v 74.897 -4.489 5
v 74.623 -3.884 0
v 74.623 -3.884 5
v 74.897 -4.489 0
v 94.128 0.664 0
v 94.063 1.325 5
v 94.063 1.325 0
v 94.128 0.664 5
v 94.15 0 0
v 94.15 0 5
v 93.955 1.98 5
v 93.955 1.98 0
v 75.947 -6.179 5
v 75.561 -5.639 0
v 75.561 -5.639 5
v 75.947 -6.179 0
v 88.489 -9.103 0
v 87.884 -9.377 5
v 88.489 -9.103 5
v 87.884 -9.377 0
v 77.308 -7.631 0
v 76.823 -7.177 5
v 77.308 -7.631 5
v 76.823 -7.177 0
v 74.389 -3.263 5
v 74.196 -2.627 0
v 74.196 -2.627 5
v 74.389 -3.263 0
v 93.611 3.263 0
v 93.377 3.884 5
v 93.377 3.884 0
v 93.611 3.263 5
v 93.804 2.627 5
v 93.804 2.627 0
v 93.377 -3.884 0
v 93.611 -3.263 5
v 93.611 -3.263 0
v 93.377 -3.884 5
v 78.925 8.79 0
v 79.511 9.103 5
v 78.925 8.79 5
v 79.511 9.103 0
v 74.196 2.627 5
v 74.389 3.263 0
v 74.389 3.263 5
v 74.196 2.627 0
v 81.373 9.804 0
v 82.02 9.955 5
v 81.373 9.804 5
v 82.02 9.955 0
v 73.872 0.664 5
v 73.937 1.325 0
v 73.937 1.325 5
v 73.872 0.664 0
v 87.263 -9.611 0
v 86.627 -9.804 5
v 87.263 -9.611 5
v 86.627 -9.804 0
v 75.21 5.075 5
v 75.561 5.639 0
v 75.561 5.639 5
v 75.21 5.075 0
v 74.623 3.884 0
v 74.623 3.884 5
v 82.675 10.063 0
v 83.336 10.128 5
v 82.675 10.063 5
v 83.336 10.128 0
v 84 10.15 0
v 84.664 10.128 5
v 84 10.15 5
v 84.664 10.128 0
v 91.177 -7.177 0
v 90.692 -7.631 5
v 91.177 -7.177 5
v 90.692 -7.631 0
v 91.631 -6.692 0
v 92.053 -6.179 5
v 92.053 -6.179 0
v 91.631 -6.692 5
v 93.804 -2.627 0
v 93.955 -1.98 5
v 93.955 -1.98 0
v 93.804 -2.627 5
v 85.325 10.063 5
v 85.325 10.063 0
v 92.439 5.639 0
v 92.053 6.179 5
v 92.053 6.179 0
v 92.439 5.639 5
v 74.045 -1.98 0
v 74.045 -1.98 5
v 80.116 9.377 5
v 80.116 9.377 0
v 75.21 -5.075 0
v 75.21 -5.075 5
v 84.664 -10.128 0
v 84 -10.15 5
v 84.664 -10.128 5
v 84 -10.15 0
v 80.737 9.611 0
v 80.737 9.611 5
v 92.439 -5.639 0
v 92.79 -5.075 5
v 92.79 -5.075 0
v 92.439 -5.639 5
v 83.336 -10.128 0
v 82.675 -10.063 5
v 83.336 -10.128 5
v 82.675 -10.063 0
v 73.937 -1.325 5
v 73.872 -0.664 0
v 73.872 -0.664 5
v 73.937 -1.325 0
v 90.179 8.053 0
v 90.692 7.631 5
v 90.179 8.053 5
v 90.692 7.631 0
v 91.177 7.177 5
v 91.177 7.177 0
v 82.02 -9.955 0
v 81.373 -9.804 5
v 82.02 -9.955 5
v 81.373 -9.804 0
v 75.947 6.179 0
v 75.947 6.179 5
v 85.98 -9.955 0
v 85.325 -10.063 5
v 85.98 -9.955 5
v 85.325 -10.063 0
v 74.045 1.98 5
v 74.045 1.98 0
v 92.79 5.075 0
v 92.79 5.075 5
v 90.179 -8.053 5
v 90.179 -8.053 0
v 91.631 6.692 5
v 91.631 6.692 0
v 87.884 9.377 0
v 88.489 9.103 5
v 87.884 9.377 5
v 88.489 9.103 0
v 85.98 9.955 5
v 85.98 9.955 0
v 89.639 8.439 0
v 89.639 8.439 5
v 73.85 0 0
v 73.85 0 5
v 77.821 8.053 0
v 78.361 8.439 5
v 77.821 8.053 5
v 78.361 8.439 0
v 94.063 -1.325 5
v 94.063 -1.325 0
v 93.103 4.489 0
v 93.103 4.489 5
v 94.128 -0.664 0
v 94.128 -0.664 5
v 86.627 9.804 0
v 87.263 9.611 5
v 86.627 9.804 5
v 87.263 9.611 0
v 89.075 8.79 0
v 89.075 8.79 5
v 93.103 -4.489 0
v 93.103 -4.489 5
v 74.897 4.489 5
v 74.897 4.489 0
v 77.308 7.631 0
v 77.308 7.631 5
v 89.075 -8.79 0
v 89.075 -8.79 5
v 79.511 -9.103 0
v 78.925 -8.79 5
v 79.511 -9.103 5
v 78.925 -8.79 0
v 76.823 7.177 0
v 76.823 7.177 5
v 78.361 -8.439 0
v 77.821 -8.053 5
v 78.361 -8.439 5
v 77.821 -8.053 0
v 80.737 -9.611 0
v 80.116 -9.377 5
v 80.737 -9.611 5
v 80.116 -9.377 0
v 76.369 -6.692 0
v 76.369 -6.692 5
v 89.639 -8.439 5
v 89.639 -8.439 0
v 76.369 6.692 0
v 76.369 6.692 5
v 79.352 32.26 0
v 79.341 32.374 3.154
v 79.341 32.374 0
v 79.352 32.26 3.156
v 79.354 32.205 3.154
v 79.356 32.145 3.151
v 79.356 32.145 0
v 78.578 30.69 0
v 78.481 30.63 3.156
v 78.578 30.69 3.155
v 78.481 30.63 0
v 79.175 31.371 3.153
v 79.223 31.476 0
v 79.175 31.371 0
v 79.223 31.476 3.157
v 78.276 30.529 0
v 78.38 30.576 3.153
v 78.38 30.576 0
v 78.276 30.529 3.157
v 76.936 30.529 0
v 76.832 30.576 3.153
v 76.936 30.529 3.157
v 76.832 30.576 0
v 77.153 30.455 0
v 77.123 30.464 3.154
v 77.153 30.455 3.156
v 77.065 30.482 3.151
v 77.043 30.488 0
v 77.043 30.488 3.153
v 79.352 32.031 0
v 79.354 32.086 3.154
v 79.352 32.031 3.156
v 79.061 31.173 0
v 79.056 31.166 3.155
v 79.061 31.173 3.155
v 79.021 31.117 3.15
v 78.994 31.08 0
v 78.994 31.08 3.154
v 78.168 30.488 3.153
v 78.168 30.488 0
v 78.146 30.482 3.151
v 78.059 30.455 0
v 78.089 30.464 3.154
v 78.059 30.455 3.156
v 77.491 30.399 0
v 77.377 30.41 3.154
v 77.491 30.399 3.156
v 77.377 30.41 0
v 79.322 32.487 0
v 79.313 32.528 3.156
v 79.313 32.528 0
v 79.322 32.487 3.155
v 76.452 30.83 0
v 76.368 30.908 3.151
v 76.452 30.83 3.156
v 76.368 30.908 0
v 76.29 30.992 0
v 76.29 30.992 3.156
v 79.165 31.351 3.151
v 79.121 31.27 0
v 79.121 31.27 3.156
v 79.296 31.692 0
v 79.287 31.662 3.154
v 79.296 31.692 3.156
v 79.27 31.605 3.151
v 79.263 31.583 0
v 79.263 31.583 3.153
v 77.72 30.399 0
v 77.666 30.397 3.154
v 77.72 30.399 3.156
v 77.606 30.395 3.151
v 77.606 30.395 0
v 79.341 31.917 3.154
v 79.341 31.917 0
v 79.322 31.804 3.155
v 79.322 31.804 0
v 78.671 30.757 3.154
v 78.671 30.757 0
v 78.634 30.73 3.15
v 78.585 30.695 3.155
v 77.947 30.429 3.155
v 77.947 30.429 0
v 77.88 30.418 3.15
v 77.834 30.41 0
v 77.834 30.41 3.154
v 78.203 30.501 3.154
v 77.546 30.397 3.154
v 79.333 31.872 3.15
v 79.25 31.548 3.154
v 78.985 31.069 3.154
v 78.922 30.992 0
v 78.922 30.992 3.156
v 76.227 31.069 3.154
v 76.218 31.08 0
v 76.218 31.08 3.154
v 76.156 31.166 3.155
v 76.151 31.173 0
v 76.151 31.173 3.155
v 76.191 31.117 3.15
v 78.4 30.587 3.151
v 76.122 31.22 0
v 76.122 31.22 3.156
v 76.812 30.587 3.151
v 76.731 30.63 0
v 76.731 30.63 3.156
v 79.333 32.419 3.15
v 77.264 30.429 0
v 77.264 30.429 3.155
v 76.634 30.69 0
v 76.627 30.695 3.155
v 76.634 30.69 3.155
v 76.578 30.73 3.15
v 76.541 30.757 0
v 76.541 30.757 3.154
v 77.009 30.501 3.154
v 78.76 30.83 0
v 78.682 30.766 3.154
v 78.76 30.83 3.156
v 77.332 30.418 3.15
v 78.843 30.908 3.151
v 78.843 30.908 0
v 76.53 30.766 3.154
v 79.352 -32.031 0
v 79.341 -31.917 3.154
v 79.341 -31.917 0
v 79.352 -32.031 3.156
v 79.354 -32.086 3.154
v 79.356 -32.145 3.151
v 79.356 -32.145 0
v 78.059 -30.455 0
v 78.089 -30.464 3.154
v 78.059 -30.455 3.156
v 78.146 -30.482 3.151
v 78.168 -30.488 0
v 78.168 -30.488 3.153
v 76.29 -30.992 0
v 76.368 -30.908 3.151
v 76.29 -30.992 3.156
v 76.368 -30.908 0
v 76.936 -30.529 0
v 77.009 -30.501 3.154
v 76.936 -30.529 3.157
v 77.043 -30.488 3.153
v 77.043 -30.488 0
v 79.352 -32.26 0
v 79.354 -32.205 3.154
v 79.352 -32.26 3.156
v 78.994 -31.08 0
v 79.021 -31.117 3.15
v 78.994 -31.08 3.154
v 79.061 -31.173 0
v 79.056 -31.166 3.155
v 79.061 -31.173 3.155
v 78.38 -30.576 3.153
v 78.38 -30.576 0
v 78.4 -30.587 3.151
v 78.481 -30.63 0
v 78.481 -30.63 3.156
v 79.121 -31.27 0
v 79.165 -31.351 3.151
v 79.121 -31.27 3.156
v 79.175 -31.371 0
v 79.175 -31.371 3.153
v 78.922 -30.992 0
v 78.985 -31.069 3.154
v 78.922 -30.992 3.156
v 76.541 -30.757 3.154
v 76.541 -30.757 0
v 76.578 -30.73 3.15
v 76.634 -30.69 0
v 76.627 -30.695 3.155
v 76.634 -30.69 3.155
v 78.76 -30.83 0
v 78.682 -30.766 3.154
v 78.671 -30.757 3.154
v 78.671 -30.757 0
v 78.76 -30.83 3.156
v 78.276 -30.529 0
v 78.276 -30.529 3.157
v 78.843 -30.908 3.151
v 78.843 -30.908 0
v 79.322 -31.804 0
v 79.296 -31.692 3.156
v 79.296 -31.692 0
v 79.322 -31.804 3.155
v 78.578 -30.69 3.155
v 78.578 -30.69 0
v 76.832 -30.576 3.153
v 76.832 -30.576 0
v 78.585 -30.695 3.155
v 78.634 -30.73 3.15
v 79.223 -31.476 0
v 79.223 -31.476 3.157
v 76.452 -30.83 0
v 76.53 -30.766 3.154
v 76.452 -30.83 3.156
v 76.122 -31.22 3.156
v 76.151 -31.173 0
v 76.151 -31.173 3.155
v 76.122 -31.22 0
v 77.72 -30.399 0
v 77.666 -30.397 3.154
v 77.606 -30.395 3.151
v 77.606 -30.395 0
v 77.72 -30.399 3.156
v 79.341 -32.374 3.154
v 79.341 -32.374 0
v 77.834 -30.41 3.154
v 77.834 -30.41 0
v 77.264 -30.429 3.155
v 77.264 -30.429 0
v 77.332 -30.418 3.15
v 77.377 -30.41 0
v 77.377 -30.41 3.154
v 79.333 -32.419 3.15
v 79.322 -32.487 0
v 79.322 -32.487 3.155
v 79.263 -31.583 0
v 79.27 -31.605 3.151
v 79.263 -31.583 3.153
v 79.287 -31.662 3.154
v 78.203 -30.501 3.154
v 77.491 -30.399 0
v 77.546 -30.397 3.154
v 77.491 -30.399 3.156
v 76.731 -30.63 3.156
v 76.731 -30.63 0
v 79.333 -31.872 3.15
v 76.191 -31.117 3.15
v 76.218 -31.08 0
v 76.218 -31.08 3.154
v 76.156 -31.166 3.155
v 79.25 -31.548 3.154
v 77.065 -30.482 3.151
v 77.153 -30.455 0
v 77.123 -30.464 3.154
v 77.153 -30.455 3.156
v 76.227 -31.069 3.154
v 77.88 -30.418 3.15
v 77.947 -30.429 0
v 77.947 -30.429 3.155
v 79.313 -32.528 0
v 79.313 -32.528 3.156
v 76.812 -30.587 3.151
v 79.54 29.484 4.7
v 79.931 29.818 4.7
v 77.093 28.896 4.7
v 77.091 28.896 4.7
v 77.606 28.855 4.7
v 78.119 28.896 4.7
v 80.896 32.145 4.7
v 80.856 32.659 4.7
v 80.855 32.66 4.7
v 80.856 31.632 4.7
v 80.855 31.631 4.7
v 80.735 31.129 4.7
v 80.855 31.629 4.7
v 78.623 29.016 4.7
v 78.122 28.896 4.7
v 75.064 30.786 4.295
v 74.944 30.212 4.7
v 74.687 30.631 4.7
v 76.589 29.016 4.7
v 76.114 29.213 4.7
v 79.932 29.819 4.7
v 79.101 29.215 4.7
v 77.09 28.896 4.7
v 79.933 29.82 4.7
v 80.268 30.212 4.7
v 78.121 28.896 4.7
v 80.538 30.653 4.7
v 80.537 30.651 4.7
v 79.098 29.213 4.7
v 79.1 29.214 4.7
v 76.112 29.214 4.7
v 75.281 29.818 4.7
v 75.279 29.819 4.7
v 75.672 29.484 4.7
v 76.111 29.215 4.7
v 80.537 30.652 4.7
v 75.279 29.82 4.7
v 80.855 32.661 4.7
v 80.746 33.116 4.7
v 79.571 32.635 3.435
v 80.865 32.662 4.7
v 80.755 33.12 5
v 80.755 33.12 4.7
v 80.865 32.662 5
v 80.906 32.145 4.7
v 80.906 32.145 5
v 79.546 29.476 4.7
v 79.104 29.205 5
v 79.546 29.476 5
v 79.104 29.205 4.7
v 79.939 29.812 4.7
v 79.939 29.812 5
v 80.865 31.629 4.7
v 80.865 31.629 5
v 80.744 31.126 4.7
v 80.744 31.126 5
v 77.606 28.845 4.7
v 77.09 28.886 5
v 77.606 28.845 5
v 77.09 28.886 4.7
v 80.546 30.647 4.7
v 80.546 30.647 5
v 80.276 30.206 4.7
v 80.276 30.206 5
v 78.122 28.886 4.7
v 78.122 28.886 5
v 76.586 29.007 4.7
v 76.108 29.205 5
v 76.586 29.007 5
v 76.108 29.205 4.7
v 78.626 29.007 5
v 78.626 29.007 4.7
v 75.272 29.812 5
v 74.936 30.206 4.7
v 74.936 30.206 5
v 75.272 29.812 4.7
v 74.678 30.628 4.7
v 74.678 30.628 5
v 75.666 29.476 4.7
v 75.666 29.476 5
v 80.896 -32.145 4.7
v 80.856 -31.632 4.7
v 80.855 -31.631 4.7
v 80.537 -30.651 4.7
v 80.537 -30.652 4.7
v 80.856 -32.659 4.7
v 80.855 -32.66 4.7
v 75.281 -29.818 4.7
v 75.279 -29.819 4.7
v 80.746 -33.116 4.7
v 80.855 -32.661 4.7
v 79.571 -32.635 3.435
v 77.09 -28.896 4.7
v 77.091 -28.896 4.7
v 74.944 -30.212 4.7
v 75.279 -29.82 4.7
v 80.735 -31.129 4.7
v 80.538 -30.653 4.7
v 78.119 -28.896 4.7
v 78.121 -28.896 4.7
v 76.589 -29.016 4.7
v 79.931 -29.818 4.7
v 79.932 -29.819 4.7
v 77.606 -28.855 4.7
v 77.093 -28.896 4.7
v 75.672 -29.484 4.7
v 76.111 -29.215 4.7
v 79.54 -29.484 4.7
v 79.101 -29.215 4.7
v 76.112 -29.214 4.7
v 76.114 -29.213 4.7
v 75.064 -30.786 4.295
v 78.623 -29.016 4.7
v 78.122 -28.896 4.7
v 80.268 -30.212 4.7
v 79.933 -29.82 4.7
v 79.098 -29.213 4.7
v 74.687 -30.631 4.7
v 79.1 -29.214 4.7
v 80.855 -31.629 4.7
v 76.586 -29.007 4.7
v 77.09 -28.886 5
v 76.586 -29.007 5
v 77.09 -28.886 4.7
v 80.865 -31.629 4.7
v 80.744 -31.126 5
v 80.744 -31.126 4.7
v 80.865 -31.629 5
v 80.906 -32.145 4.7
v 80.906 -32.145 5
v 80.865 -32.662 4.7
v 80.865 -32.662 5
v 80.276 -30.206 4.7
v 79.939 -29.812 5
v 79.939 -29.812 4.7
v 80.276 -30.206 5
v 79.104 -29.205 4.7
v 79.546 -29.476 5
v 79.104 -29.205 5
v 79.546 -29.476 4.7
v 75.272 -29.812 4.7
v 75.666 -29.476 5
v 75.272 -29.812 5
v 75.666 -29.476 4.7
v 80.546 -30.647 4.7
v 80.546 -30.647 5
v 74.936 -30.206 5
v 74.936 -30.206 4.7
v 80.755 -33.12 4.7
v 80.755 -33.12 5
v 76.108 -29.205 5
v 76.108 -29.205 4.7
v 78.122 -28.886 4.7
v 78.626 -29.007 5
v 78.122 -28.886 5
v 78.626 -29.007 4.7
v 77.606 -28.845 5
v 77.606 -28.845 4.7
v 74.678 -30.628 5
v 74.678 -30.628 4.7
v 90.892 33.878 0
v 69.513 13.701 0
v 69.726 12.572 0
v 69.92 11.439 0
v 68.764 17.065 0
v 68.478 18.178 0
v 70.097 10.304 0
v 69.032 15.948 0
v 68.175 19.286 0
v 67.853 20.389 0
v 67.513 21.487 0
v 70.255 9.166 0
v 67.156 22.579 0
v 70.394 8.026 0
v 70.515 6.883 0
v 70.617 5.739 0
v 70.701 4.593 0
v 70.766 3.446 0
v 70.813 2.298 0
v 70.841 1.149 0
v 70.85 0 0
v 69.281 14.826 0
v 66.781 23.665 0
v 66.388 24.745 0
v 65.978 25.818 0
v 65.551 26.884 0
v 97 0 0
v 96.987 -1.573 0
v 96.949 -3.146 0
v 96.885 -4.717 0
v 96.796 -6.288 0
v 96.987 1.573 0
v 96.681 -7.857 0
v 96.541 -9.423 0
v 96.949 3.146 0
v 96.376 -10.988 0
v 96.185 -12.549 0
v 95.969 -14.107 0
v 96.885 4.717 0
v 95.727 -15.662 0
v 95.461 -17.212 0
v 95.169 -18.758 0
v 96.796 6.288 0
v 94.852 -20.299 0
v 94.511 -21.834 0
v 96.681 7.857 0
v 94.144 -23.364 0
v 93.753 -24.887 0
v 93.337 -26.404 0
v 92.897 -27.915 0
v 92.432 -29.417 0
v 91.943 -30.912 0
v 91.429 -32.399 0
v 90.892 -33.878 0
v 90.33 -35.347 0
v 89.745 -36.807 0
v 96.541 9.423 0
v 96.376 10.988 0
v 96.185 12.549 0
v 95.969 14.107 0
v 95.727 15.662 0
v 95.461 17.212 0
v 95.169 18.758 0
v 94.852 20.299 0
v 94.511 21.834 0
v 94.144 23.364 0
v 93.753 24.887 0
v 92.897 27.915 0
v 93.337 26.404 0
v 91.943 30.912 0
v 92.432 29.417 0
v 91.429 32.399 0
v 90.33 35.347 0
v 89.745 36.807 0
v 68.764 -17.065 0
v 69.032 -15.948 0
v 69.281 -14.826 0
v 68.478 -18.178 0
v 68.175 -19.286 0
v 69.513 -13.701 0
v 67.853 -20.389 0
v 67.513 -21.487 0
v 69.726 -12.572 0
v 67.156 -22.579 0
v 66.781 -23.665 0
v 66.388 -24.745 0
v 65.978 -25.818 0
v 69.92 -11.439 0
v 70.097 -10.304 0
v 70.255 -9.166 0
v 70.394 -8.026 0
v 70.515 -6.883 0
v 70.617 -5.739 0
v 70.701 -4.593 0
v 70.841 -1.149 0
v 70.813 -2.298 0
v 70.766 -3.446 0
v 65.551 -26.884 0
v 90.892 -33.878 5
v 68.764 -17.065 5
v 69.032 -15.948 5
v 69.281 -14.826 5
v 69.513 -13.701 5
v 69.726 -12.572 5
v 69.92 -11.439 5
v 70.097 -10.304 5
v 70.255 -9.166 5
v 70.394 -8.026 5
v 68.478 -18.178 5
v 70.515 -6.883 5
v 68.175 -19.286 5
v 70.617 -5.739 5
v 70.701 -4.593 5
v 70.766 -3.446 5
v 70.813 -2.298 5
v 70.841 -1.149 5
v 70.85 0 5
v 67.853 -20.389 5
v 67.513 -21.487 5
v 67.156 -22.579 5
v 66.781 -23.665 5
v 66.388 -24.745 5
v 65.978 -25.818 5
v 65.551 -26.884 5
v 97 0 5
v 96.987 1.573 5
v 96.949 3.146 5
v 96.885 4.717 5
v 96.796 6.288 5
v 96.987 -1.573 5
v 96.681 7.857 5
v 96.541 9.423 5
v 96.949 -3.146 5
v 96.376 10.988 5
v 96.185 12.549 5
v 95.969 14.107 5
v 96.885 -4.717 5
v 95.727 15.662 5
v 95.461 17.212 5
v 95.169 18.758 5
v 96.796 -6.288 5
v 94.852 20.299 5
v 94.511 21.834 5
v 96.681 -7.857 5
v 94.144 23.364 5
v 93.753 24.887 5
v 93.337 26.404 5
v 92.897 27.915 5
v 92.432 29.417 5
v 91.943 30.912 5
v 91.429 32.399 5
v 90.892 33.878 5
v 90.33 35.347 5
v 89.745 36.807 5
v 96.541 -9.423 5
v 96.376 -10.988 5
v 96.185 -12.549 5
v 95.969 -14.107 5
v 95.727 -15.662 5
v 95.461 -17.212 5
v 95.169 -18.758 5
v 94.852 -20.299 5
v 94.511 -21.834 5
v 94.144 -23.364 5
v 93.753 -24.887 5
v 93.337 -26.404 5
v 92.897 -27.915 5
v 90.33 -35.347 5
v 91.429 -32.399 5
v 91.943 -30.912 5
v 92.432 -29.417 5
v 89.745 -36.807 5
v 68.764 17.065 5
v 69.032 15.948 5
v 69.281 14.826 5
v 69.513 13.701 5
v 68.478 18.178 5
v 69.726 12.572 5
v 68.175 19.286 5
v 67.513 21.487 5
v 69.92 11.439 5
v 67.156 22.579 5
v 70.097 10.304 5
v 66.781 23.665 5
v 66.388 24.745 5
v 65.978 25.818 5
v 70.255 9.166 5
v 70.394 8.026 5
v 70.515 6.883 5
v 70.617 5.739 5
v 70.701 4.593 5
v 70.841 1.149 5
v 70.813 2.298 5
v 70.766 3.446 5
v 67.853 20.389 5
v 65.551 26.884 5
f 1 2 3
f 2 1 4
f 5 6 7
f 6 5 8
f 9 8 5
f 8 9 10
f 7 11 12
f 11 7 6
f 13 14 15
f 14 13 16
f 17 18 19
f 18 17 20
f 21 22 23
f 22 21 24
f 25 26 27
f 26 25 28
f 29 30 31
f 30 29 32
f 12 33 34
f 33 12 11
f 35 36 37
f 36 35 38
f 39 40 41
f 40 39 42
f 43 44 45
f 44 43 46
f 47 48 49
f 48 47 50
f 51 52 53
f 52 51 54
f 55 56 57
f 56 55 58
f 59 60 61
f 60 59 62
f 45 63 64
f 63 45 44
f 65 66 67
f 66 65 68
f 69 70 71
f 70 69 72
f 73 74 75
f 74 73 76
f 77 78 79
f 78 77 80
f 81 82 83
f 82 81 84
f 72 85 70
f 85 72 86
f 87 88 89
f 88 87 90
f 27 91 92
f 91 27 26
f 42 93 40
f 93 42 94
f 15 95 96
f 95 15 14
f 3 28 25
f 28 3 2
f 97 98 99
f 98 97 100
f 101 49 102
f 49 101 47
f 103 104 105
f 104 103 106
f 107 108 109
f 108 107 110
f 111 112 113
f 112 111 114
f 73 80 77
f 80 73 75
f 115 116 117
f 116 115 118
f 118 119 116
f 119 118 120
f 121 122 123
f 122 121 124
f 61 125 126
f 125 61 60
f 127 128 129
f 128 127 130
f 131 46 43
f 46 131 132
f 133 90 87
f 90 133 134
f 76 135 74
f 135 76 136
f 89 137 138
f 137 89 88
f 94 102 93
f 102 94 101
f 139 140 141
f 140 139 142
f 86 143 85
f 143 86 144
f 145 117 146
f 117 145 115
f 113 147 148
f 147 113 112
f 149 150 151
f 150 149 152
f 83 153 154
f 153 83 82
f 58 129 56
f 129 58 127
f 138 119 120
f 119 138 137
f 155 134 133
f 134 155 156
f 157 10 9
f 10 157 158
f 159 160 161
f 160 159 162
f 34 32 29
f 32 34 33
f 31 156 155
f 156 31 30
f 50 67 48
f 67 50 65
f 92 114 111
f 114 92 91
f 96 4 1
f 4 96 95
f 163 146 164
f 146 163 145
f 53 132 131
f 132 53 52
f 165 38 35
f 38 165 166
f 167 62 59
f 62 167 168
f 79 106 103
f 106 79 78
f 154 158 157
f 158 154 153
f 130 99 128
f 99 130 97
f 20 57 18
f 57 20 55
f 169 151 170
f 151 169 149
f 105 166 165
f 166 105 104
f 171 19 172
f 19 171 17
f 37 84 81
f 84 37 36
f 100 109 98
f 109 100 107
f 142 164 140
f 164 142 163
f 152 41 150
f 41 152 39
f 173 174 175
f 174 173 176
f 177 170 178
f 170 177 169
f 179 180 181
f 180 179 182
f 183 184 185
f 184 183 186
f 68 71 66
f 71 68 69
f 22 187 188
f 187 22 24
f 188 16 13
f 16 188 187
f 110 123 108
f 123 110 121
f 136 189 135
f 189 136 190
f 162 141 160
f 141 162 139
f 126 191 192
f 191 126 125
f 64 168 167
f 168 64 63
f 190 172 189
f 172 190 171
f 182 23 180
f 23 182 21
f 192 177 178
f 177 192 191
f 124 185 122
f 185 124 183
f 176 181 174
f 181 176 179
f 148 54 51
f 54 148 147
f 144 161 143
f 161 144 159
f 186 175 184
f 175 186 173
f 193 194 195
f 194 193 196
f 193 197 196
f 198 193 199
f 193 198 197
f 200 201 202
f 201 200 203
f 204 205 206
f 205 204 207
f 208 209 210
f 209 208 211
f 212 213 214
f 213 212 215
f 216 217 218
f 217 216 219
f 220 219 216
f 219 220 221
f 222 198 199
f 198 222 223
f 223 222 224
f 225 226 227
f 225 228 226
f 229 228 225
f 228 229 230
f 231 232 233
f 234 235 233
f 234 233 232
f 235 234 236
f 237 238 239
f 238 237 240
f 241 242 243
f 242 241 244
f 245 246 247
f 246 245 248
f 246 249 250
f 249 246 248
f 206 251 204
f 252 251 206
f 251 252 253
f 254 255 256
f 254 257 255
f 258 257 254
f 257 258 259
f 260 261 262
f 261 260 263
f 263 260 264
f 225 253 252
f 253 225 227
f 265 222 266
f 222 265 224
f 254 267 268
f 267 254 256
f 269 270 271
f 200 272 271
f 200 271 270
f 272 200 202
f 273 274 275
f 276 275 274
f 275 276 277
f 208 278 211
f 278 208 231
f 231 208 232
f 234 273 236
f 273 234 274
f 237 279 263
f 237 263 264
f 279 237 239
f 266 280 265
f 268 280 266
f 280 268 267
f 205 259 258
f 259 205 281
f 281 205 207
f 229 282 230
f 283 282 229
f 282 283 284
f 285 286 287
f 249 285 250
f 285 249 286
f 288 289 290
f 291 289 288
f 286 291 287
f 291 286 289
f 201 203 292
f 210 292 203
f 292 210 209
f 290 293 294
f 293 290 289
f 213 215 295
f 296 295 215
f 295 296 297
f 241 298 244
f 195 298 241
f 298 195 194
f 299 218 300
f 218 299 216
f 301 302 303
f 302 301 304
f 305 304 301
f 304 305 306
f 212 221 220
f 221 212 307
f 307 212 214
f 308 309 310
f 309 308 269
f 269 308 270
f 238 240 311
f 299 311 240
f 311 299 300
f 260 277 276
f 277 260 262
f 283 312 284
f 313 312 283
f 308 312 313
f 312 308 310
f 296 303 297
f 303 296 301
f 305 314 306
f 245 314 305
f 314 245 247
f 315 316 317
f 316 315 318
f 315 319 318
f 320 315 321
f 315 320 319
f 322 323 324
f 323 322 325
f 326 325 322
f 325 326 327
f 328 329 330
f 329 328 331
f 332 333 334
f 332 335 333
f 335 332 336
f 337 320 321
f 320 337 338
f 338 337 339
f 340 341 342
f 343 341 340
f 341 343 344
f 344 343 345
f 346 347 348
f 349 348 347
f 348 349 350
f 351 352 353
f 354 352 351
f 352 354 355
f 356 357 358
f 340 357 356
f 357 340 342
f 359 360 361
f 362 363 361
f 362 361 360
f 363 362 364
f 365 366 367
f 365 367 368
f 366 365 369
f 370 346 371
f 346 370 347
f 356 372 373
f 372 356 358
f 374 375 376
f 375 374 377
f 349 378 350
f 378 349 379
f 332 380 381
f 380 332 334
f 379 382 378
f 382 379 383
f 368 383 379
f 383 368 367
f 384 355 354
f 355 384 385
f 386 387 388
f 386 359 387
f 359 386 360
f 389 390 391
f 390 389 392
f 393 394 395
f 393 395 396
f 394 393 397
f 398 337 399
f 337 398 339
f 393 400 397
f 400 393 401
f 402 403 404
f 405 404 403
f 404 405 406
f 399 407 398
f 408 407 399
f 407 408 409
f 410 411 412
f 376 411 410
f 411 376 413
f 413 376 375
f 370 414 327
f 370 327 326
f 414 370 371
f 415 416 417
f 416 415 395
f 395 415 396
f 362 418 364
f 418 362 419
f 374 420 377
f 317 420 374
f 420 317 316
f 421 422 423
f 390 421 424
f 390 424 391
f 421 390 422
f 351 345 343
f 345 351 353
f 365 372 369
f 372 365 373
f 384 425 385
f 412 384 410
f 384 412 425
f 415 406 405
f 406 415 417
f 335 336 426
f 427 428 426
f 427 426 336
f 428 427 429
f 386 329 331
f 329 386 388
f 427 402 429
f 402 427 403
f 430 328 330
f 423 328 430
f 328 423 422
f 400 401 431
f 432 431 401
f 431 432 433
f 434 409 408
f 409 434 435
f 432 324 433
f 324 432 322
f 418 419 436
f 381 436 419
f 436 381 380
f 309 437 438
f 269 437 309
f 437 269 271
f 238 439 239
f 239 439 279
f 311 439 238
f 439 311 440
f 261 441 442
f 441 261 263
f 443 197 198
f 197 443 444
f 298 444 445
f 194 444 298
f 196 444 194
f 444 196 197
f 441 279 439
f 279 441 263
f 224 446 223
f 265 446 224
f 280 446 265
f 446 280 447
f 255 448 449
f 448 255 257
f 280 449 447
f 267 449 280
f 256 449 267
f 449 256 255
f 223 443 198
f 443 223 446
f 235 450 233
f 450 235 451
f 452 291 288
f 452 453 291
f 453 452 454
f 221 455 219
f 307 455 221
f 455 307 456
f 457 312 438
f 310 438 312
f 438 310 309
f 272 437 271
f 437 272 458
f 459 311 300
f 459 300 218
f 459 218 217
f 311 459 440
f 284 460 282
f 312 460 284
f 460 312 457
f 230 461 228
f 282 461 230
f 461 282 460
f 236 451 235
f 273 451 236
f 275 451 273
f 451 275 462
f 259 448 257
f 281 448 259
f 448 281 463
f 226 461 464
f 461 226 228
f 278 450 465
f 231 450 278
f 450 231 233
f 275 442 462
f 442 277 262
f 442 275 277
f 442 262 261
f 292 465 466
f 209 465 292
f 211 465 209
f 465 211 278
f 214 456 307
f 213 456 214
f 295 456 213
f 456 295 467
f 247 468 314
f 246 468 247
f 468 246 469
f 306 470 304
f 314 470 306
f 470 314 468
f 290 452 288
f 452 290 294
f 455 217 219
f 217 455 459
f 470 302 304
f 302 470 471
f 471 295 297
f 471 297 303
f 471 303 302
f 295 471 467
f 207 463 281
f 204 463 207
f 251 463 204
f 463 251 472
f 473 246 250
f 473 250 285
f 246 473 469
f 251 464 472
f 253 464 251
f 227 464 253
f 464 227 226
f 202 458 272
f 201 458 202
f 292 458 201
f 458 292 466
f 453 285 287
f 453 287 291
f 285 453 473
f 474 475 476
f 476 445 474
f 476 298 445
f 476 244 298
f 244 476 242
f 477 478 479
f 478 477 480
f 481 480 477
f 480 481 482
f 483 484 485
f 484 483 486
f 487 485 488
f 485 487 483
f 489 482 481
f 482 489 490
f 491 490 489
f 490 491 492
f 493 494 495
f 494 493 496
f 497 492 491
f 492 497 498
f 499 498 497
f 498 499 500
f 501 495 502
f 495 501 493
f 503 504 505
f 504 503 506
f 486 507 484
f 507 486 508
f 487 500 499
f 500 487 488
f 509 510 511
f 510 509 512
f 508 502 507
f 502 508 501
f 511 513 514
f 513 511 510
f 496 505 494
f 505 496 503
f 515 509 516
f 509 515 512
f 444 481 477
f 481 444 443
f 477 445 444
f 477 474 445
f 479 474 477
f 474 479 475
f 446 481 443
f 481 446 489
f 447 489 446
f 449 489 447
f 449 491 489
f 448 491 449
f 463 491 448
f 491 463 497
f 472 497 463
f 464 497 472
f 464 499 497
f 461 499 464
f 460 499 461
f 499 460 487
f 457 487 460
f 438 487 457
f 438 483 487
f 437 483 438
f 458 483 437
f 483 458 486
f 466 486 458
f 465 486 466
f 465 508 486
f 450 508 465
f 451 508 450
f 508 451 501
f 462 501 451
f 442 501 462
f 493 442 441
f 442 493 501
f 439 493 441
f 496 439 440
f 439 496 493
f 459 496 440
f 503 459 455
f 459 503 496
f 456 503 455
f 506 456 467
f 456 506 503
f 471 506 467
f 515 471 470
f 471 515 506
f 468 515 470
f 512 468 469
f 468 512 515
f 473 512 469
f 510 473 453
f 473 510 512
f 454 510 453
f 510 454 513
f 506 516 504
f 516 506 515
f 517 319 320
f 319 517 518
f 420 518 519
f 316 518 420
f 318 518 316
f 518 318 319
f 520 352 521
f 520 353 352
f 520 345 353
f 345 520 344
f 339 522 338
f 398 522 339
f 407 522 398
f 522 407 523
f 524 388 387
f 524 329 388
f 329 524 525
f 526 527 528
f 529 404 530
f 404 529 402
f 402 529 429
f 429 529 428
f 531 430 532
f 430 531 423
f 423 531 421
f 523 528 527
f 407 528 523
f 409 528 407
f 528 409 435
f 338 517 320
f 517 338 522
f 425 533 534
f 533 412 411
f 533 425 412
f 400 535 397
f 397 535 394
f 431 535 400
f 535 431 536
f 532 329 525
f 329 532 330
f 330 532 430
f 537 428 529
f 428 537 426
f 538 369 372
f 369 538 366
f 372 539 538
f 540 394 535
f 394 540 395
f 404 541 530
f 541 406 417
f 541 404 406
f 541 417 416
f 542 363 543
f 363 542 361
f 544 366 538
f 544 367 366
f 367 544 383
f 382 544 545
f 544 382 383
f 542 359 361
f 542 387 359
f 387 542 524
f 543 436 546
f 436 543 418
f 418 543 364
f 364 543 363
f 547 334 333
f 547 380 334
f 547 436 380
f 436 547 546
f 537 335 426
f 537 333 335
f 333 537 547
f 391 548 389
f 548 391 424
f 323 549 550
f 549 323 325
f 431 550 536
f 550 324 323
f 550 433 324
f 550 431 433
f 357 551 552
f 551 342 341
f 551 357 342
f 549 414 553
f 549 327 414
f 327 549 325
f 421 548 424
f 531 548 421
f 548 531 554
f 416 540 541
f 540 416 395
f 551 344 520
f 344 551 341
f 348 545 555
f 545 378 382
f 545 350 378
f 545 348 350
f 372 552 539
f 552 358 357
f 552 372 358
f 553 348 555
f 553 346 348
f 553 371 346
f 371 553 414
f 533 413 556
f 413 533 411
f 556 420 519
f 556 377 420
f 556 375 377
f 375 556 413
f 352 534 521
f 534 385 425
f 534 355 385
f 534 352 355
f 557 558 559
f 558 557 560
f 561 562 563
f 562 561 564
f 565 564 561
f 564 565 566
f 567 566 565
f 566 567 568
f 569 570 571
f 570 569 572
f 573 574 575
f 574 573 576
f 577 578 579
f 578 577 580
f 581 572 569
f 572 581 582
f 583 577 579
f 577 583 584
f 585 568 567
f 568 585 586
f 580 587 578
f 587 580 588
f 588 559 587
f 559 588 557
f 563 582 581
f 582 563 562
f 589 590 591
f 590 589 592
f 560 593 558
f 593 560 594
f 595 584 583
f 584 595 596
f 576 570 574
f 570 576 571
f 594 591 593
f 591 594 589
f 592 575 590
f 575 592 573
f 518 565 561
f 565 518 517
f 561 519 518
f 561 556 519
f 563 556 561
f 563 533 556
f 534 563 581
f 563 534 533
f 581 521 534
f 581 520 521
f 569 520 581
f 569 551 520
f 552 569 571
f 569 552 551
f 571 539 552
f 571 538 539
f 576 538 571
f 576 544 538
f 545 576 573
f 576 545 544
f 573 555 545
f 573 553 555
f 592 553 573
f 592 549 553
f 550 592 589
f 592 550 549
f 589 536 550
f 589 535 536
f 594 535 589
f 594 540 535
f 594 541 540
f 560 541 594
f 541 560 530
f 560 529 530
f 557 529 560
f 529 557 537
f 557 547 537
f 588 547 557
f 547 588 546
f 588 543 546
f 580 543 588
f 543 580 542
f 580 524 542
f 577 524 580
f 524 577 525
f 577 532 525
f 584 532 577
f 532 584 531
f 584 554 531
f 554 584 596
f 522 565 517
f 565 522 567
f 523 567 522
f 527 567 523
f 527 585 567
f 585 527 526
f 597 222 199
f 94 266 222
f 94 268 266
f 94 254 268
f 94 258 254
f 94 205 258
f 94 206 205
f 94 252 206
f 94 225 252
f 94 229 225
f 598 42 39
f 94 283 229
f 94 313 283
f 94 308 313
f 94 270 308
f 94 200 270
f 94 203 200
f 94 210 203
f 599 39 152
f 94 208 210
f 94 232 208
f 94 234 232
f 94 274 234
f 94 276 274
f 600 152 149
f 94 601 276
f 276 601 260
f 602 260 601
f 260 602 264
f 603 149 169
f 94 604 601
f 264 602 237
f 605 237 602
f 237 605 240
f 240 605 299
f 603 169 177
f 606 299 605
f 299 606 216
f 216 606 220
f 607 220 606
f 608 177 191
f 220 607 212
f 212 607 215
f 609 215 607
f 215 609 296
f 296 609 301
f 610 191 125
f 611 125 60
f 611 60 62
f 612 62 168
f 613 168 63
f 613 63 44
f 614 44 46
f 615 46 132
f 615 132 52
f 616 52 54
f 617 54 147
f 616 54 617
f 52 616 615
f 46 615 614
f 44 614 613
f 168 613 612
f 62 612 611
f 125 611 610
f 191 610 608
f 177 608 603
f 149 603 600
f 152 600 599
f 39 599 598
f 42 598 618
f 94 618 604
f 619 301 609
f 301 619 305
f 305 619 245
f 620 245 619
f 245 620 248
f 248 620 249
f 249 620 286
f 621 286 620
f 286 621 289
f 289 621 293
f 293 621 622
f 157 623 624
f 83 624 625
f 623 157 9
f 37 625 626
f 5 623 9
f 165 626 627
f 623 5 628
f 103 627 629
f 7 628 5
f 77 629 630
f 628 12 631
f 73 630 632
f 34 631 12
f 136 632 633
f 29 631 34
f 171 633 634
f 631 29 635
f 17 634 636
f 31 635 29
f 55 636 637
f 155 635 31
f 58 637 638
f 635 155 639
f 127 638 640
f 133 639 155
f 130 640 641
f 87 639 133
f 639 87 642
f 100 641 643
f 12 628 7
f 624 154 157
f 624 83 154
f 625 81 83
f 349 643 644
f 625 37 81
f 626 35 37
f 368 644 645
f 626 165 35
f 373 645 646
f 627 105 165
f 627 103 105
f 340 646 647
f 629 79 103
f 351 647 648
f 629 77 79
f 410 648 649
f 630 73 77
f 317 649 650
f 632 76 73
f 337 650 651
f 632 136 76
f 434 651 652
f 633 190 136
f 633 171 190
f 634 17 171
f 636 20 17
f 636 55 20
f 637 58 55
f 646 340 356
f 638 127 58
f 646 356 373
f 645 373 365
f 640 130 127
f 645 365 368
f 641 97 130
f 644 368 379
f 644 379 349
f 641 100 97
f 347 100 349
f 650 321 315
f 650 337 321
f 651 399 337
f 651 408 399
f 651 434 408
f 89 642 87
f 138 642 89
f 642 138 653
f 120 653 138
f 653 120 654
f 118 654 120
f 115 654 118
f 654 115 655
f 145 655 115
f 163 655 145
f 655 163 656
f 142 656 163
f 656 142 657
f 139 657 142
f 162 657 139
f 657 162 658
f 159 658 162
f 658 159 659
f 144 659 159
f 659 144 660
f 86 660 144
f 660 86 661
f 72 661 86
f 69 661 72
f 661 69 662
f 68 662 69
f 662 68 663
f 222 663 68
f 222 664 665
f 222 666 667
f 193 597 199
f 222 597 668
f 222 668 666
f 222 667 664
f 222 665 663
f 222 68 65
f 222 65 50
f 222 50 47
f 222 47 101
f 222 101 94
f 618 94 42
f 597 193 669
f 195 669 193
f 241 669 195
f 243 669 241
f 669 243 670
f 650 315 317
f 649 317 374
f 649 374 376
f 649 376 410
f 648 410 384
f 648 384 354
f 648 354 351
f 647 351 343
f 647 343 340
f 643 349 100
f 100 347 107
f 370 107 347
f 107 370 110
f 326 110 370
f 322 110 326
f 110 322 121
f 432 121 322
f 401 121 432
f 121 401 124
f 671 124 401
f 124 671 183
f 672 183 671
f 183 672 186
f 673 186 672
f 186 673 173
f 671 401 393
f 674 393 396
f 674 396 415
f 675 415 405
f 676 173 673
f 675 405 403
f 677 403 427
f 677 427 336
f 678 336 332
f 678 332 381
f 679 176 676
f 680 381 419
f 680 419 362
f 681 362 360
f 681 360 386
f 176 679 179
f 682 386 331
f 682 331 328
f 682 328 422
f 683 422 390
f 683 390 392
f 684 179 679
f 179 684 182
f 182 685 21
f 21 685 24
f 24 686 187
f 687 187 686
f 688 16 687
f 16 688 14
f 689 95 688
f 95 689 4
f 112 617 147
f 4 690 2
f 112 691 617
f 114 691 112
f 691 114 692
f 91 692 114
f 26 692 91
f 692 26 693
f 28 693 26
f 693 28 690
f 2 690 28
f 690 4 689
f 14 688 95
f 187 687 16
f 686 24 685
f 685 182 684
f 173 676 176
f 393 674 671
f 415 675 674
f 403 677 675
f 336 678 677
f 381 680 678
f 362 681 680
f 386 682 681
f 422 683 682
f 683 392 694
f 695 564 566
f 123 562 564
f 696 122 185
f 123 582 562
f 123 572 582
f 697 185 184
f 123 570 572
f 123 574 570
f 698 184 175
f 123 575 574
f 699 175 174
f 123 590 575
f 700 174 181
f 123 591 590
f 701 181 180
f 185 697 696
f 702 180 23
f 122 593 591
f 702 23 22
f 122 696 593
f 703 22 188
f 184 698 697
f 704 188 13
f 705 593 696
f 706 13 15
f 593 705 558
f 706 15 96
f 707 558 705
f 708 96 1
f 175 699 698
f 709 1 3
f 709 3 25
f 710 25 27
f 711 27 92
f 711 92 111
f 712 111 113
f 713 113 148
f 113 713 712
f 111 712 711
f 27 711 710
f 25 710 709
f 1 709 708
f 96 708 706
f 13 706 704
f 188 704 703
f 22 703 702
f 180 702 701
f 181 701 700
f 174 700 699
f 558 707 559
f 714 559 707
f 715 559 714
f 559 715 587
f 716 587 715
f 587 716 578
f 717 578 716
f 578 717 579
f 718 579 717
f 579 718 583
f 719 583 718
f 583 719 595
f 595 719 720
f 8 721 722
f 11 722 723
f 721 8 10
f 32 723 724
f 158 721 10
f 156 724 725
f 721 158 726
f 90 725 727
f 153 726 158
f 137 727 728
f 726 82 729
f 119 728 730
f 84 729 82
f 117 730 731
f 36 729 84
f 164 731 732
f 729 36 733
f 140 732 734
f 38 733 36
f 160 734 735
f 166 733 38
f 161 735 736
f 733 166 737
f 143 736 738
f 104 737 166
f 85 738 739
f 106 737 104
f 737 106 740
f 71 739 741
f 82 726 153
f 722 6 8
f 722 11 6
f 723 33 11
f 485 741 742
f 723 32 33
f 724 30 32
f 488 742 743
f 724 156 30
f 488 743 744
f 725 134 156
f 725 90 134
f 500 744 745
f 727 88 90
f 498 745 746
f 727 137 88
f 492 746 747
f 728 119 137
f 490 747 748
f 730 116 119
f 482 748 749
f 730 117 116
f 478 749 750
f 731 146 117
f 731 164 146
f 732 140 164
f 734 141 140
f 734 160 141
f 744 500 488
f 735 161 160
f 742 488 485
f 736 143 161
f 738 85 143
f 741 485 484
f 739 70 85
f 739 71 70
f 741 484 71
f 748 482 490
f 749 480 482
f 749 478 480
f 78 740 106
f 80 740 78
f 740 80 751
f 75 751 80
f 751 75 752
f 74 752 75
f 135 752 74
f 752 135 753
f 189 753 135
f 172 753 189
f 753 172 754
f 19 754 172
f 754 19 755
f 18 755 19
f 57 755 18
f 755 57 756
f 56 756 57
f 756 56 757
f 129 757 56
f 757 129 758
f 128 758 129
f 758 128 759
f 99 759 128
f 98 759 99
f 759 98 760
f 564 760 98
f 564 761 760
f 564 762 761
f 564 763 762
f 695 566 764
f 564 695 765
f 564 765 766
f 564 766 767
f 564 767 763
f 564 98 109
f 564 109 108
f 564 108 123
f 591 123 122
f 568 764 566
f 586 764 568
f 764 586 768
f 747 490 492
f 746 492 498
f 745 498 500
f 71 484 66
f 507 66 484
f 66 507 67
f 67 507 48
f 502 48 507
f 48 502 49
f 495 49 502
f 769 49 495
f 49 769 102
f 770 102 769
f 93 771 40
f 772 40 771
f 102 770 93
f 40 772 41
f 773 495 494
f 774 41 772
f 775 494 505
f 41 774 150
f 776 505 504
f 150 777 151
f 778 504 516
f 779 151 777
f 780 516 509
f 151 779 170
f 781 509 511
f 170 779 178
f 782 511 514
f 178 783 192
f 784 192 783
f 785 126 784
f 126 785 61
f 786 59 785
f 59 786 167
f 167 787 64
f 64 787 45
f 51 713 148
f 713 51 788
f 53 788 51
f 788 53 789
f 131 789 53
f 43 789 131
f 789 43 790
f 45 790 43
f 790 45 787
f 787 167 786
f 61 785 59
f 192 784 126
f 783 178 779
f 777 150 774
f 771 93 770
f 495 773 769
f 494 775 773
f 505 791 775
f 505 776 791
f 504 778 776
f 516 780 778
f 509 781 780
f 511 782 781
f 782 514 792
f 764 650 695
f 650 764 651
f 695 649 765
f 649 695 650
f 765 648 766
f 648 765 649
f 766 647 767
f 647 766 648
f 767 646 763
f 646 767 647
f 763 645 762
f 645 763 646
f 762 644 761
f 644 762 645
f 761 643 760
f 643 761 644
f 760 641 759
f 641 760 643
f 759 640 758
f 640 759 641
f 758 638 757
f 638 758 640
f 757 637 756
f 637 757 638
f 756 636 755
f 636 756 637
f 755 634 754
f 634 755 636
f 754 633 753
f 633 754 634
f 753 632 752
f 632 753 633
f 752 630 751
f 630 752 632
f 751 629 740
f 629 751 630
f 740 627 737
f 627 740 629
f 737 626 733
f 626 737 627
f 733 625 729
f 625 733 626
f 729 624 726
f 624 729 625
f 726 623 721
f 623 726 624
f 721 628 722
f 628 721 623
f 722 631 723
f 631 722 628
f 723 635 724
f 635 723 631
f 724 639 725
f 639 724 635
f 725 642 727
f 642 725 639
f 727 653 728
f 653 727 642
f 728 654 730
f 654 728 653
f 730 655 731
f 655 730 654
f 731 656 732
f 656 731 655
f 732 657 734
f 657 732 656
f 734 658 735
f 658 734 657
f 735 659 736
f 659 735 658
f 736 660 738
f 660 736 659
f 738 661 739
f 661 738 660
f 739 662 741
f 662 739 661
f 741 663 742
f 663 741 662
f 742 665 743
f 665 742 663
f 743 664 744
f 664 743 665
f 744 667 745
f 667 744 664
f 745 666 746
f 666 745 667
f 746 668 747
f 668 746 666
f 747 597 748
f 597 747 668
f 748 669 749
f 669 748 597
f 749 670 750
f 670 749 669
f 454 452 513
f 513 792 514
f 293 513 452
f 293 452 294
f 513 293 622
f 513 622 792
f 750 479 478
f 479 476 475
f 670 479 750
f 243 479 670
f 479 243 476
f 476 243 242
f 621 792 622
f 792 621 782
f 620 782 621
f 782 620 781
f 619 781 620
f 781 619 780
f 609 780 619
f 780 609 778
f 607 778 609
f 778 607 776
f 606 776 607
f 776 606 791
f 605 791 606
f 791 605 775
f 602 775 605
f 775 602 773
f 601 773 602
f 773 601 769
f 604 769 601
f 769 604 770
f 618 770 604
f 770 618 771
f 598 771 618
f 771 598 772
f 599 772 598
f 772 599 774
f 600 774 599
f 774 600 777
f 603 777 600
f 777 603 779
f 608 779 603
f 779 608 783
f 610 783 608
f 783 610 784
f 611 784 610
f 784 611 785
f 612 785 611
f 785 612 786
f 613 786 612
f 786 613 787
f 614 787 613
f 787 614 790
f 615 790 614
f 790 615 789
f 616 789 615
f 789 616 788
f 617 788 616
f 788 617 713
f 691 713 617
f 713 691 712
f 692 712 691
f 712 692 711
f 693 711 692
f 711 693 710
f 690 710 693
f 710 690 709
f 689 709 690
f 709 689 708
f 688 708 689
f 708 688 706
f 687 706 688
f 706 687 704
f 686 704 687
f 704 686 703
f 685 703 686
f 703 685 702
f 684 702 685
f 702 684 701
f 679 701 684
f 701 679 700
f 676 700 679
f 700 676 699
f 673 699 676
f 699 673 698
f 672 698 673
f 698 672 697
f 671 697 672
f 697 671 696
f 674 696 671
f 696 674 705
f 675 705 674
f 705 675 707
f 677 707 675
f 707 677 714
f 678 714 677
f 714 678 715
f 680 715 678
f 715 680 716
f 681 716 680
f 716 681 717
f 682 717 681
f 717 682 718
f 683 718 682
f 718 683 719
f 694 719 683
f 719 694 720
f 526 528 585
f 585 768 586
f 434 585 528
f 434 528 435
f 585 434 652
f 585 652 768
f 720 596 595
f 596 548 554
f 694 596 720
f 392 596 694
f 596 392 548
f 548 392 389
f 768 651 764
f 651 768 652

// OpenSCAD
// file: parameters.scad
// =============================================================================
// Gen-CB — nightly 2026-10-13 (physics_scorer, honest magpylib watts)
// Wire-saver stator for the Gen-CA rotors: only 4.05 mm of copper (9 layers), so the magnet faces are 6.65 mm apart and peak Bz at the copper reaches ≈0.70 T. It needs ≈300 m of wire (≈80 m less than Gen-CA, ≈75 m less than Gen-BX) and still out-scores the Gen-BX champion; it shares every rotor part, the steel, the frame rods and the bearing bridges with Gen-CA, so the two stators swap on the same machine.
// Clocking 0 deg (magnets N facing S) + D-flat keyed bore + index notch + flip-symmetric hole map.
// Windable 2-piece bobbin; turns = physics_scorer turns_fit; copper only between flanges.
// Steel back-iron: 2× Ø194 × 4.76 mm (3/16") mild-steel discs (steel_backiron_disc.dxf); magnets sit ON the steel
// (through-pockets) -> score with --back-iron. Night 2026-10-13.
// =============================================================================
topology            = "dual_rotor";

// --- Wire / winding (physics_scorer winding-fit) -------------------------------
wire_awg            = 26;
wire_od             = 0.45;     // insulated OD mm (bare 0.405)
fill_realistic      = 0.65;     // insulated-wire area / window (DENSE layered wind with a jig; scorer cap 0.65)
turns               = 292;       // = physics_scorer turns_fit (do NOT raise)
coil_former_type    = "bobbin";
coil_core_inset     = 17.70;     // radial copper build: hub = copper boundary inset by this
wind_build_axial    = 0.0;      // nothing proud of the flanges
wind_build_radial   = 0.0;

// --- Bobbin (base + lid) ---------------------------------------------------------
coil_id_r           = 63.00;    // copper boundary sector
coil_od_r           = 102.00;
span_deg            = 26.82;    // = pitch - 2*asin((wall+0.85)/coil_id_r) -> >=1.2 mm stator web
former_web          = 4.05;     // copper height between flanges (TALL copper: steel keeps Bz up)
flange_t            = 0.80;     // >= 0.8 mm FDM wall rule (tall winds push on the flanges)
wall                = 0.80;     // flange lip beyond copper
former_bare_h       = former_web + 2 * flange_t;
coil_envelope_h     = former_bare_h + 2 * wind_build_axial;
tab_w               = 7.0;
tab_len             = 7.0;
tab_h               = former_bare_h / 2;
pin_d               = 1.9;      // 1.75 mm filament locating pin
coil_mount_r        = coil_od_r + 0.2 + 4.0;
lead_y              = 1.6;
lead_slot_w         = 0.9;
lead_groove_d       = 0.6;

// --- Gap -------------------------------------------------------------------------
run_clear           = 0.50;     // rotor face -> flange
gap_spacer_h        = run_clear + wind_build_axial;
m2m                 = coil_envelope_h + 2 * run_clear;   // rotor face to rotor face (= gap_sleeve length)

// --- Stator ----------------------------------------------------------------------
coil_stations       = 12;
bay_clear           = 0.35;     // 0.35 mm: bobbin BASES print IN PLACE inside the stator bays (print-in-place gap), then pop out
stator_thick        = former_bare_h;                        // bobbins flush both faces
stator_od           = 225.0;
shaft_clear_stator  = 14.0;     // stator is static; gap sleeve OD 12 spins inside
stator_ir           = 57.85;    // ANNULAR stator: open centre (nested one-plate pack); inner rim 4.0 mm

// --- Rotor(s) --------------------------------------------------------------------
magnet_Br           = 1.43;     // N52
magnet_d_large      = 20.0;
magnet_h_large      = 5.0;      // one O20x5 per pocket
magnet_h_small      = 5.0;      // unused: no O5 pockets in this kit
halbach_magnetisation = "none";  // NO O5 assist magnets in this kit (scan: they lower the 4-pole score)
rotor_b_same_axis   = true;     // same-index magnets share one axis: N faces S across the gap
large_pocket_d      = 20.3;
small_pocket_d      = 5.3;
pocket_h            = 5.00;     // THROUGH the carrier: magnet back face sits on the steel disc (FLUSH seat: carrier = magnet height, magnet face level with the rotor face)
large_n             = 8;
R_large             = 84.0;
small_r_list        = [];       // no O5 pockets
carrier_od          = 194.0;
ring_ir             = 70.85;    // RING rotor: PLA magnet ring r ring_ir..carrier_od/2 (steel disc = structural rotor)
hub_flange_od       = 74.0;     // separate rotor_hub flange (inside the ring, flush with the ring face)
csk_d               = 6.6;      // M3 countersunk head pocket (ISO 10642 head 6.0 nominal) on the stator face
csk_depth           = 1.55;     // = (csk_d - m3_clear) / 2: 90 deg cone; head sits 0.3 mm below the face
n_seg               = 8;        // magnet-carrier ARCS per rotor (segmented carrier)
seg_deg             = 360 / n_seg;
seg_start           = -22.5;   // arc edge angle (between pocket 0 and its clamp bolt)
seg_kerf_deg        = 0.4;      // gap between neighbouring arcs on the steel
carrier_thick       = pocket_h;
hub_h               = 12.0;     // > steel_t + insert: radial set-screw clears the steel
hub_od              = 24.0;     // slim hub so the M4 brace rods fit at R~18 inside the coil ring
hub_insert_d        = 4.0;      // M3 heat-set insert, radial, bears on the D-flat
rotor_b_offset_deg  = 0.0;      // CLOCKING: magnets directly opposite
shaft_key           = "dflat";
dflat_depth         = 0.5;      // 8 mm shaft with 0.5 mm flat (7.5 across flat)
index_notch_d       = 3.0;

// --- Steel back-iron (buyable laser-cut) -------------------------------------------
steel_t             = 4.76;      // mild steel thickness (image method ignores it; sized from steel_flux.py so the return path stays well below saturation)
steel_center_hole   = 26.0;     // slips over the rotor hub (OD 24)
steel_od            = carrier_od;   // steel disc OD = rotor carrier OD

// --- Modular MAX interface ----------------------------------------------------------
shaft_bore          = 8.35;
dflat_x             = 4.0 - dflat_depth + (shaft_bore - 8.0) / 2;
bearing_d           = 21.85;
bearing_h           = 7.2;
m3_clear            = 3.5;
bolt_r_inner        = 30.0;     // M3 steel-disc clamp bolts (inside the magnet ring)
bolt_n_inner        = 4;
bolt_inner_angles   = [0, 90, 180, 270];
bolt_r_outer        = 84.0;     // second M3 steel-disc clamp ring
bolt_outer_angles   = [22.5, 67.5, 112.5, 157.5, 202.5, 247.5, 292.5, 337.5];
flange_bolt_r       = 107.5;     // frame rods: OUTSIDE the rotor OD (rotors spin inside them)
flange_bolt_n       = 4;
flange_bolt_offset  = 45.00;    // between coil stations -> never cuts a lead groove/tab
brace_r             = 18.0;
brace_d             = 4.3;      // temporary M4 jack rods (assembly only)
brace_n             = 4;
brace_angles        = [45, 135, 225, 315];          // flip-symmetric

spacer_pad_od       = 14.0;
spacer_pad_id       = m3_clear;
endbell_od          = 225.0;
endbell_thick       = 8.0;
endbell_shaft_clear = 10.0;
collar_h            = 10.0;
standoff_od         = 9.0;
frame_standoff_h    = run_clear + carrier_thick + hub_h + collar_h + 2.0;
sleeve_od           = 12.0;
plate_max_mm        = 410;

$fn = 64;
// main file
// Gen-CB — rotor B MAGNET-CARRIER ARC (2026-10-13 segmented nested pack). Print x8 per rotor (16 total
// for A+B; A and B arcs are the same print). Each arc covers seg_deg = 360/n_seg of the R_large ring and holds 1 O20 through-pockets
// + 1 countersunk M3 clamp holes (inter-pole, R bolt_r_outer) to the steel disc. The 4.76 mm mild-steel disc is the structural
// rotor; the separate rotor_hub (D-flat) bolts to it at R bolt_r_inner. Arcs pack around/inside the other parts on ONE plate,
// and any arc can be swapped/re-printed on its own (modular magnet carrier).
// CLOCKING: arc j spans [j*seg_deg + seg_start, (j+1)*seg_deg + seg_start - kerf]; pockets at i*360/large_n + rotor_b_offset_deg (= 0).
// The arc's bolt holes sit on the same 8-fold map as the pockets, so every arc position puts pockets on the same steel angles;
// pocket 0 = the pocket over the STEEL index notch (clocked to the hub D-flat). Rotor B arcs = same print, flipped to face A.
// Print countersinks UP (stator face up); the arc lies flat (5 mm), no supports.
include <parameters.scad>;
$fn = 96;
module ring_holes_2d() {
    for (a = bolt_outer_angles) translate([bolt_r_outer*cos(a), bolt_r_outer*sin(a)]) circle(d=m3_clear);
    translate([carrier_od/2, 0]) circle(d=index_notch_d, $fn=24);
}
module hub_holes_2d() {
    for (a = bolt_inner_angles) translate([bolt_r_inner*cos(a), bolt_r_inner*sin(a)]) circle(d=m3_clear);
    for (a = brace_angles) translate([brace_r*cos(a), brace_r*sin(a)]) circle(d=brace_d);
    translate([hub_flange_od/2, 0]) circle(d=index_notch_d, $fn=24);
}
module csk(r, angles) {   // M3 countersunk (ISO 10642, 90 deg) head pocket on the STATOR face, head 0.3 mm below the face
    for (a = angles) translate([r*cos(a), r*sin(a), 0]) {
        translate([0, 0, carrier_thick - 0.3 - csk_depth - 0.2]) cylinder(d1=m3_clear - 0.4, d2=csk_d, h=csk_depth + 0.2 + 0.01, $fn=40);
        translate([0, 0, carrier_thick - 0.3]) cylinder(d=csk_d, h=0.4, $fn=40);
    }
}

off = rotor_b_offset_deg;
module arc_2d() {
    a0 = seg_start + seg_kerf_deg / 2; a1 = seg_start + seg_deg - seg_kerf_deg / 2;
    polygon(concat(
        [for (k = [0 : 48]) let(t = a0 + (a1 - a0) * k / 48) [(carrier_od/2) * cos(t), (carrier_od/2) * sin(t)]],
        [for (k = [48 : -1 : 0]) let(t = a0 + (a1 - a0) * k / 48) [ring_ir * cos(t), ring_ir * sin(t)]]));
}
difference() {
    linear_extrude(carrier_thick) arc_2d();
    for (i = [0 : large_n-1]) {
        a = i * 360 / large_n + off;
        translate([R_large*cos(a), R_large*sin(a), -0.1]) cylinder(d=large_pocket_d, h=carrier_thick + 0.2);
    }
    for (a = bolt_outer_angles) translate([bolt_r_outer*cos(a), bolt_r_outer*sin(a), -0.1]) cylinder(d=m3_clear, h=carrier_thick + 0.2);
    csk(bolt_r_outer, bolt_outer_angles);
}
